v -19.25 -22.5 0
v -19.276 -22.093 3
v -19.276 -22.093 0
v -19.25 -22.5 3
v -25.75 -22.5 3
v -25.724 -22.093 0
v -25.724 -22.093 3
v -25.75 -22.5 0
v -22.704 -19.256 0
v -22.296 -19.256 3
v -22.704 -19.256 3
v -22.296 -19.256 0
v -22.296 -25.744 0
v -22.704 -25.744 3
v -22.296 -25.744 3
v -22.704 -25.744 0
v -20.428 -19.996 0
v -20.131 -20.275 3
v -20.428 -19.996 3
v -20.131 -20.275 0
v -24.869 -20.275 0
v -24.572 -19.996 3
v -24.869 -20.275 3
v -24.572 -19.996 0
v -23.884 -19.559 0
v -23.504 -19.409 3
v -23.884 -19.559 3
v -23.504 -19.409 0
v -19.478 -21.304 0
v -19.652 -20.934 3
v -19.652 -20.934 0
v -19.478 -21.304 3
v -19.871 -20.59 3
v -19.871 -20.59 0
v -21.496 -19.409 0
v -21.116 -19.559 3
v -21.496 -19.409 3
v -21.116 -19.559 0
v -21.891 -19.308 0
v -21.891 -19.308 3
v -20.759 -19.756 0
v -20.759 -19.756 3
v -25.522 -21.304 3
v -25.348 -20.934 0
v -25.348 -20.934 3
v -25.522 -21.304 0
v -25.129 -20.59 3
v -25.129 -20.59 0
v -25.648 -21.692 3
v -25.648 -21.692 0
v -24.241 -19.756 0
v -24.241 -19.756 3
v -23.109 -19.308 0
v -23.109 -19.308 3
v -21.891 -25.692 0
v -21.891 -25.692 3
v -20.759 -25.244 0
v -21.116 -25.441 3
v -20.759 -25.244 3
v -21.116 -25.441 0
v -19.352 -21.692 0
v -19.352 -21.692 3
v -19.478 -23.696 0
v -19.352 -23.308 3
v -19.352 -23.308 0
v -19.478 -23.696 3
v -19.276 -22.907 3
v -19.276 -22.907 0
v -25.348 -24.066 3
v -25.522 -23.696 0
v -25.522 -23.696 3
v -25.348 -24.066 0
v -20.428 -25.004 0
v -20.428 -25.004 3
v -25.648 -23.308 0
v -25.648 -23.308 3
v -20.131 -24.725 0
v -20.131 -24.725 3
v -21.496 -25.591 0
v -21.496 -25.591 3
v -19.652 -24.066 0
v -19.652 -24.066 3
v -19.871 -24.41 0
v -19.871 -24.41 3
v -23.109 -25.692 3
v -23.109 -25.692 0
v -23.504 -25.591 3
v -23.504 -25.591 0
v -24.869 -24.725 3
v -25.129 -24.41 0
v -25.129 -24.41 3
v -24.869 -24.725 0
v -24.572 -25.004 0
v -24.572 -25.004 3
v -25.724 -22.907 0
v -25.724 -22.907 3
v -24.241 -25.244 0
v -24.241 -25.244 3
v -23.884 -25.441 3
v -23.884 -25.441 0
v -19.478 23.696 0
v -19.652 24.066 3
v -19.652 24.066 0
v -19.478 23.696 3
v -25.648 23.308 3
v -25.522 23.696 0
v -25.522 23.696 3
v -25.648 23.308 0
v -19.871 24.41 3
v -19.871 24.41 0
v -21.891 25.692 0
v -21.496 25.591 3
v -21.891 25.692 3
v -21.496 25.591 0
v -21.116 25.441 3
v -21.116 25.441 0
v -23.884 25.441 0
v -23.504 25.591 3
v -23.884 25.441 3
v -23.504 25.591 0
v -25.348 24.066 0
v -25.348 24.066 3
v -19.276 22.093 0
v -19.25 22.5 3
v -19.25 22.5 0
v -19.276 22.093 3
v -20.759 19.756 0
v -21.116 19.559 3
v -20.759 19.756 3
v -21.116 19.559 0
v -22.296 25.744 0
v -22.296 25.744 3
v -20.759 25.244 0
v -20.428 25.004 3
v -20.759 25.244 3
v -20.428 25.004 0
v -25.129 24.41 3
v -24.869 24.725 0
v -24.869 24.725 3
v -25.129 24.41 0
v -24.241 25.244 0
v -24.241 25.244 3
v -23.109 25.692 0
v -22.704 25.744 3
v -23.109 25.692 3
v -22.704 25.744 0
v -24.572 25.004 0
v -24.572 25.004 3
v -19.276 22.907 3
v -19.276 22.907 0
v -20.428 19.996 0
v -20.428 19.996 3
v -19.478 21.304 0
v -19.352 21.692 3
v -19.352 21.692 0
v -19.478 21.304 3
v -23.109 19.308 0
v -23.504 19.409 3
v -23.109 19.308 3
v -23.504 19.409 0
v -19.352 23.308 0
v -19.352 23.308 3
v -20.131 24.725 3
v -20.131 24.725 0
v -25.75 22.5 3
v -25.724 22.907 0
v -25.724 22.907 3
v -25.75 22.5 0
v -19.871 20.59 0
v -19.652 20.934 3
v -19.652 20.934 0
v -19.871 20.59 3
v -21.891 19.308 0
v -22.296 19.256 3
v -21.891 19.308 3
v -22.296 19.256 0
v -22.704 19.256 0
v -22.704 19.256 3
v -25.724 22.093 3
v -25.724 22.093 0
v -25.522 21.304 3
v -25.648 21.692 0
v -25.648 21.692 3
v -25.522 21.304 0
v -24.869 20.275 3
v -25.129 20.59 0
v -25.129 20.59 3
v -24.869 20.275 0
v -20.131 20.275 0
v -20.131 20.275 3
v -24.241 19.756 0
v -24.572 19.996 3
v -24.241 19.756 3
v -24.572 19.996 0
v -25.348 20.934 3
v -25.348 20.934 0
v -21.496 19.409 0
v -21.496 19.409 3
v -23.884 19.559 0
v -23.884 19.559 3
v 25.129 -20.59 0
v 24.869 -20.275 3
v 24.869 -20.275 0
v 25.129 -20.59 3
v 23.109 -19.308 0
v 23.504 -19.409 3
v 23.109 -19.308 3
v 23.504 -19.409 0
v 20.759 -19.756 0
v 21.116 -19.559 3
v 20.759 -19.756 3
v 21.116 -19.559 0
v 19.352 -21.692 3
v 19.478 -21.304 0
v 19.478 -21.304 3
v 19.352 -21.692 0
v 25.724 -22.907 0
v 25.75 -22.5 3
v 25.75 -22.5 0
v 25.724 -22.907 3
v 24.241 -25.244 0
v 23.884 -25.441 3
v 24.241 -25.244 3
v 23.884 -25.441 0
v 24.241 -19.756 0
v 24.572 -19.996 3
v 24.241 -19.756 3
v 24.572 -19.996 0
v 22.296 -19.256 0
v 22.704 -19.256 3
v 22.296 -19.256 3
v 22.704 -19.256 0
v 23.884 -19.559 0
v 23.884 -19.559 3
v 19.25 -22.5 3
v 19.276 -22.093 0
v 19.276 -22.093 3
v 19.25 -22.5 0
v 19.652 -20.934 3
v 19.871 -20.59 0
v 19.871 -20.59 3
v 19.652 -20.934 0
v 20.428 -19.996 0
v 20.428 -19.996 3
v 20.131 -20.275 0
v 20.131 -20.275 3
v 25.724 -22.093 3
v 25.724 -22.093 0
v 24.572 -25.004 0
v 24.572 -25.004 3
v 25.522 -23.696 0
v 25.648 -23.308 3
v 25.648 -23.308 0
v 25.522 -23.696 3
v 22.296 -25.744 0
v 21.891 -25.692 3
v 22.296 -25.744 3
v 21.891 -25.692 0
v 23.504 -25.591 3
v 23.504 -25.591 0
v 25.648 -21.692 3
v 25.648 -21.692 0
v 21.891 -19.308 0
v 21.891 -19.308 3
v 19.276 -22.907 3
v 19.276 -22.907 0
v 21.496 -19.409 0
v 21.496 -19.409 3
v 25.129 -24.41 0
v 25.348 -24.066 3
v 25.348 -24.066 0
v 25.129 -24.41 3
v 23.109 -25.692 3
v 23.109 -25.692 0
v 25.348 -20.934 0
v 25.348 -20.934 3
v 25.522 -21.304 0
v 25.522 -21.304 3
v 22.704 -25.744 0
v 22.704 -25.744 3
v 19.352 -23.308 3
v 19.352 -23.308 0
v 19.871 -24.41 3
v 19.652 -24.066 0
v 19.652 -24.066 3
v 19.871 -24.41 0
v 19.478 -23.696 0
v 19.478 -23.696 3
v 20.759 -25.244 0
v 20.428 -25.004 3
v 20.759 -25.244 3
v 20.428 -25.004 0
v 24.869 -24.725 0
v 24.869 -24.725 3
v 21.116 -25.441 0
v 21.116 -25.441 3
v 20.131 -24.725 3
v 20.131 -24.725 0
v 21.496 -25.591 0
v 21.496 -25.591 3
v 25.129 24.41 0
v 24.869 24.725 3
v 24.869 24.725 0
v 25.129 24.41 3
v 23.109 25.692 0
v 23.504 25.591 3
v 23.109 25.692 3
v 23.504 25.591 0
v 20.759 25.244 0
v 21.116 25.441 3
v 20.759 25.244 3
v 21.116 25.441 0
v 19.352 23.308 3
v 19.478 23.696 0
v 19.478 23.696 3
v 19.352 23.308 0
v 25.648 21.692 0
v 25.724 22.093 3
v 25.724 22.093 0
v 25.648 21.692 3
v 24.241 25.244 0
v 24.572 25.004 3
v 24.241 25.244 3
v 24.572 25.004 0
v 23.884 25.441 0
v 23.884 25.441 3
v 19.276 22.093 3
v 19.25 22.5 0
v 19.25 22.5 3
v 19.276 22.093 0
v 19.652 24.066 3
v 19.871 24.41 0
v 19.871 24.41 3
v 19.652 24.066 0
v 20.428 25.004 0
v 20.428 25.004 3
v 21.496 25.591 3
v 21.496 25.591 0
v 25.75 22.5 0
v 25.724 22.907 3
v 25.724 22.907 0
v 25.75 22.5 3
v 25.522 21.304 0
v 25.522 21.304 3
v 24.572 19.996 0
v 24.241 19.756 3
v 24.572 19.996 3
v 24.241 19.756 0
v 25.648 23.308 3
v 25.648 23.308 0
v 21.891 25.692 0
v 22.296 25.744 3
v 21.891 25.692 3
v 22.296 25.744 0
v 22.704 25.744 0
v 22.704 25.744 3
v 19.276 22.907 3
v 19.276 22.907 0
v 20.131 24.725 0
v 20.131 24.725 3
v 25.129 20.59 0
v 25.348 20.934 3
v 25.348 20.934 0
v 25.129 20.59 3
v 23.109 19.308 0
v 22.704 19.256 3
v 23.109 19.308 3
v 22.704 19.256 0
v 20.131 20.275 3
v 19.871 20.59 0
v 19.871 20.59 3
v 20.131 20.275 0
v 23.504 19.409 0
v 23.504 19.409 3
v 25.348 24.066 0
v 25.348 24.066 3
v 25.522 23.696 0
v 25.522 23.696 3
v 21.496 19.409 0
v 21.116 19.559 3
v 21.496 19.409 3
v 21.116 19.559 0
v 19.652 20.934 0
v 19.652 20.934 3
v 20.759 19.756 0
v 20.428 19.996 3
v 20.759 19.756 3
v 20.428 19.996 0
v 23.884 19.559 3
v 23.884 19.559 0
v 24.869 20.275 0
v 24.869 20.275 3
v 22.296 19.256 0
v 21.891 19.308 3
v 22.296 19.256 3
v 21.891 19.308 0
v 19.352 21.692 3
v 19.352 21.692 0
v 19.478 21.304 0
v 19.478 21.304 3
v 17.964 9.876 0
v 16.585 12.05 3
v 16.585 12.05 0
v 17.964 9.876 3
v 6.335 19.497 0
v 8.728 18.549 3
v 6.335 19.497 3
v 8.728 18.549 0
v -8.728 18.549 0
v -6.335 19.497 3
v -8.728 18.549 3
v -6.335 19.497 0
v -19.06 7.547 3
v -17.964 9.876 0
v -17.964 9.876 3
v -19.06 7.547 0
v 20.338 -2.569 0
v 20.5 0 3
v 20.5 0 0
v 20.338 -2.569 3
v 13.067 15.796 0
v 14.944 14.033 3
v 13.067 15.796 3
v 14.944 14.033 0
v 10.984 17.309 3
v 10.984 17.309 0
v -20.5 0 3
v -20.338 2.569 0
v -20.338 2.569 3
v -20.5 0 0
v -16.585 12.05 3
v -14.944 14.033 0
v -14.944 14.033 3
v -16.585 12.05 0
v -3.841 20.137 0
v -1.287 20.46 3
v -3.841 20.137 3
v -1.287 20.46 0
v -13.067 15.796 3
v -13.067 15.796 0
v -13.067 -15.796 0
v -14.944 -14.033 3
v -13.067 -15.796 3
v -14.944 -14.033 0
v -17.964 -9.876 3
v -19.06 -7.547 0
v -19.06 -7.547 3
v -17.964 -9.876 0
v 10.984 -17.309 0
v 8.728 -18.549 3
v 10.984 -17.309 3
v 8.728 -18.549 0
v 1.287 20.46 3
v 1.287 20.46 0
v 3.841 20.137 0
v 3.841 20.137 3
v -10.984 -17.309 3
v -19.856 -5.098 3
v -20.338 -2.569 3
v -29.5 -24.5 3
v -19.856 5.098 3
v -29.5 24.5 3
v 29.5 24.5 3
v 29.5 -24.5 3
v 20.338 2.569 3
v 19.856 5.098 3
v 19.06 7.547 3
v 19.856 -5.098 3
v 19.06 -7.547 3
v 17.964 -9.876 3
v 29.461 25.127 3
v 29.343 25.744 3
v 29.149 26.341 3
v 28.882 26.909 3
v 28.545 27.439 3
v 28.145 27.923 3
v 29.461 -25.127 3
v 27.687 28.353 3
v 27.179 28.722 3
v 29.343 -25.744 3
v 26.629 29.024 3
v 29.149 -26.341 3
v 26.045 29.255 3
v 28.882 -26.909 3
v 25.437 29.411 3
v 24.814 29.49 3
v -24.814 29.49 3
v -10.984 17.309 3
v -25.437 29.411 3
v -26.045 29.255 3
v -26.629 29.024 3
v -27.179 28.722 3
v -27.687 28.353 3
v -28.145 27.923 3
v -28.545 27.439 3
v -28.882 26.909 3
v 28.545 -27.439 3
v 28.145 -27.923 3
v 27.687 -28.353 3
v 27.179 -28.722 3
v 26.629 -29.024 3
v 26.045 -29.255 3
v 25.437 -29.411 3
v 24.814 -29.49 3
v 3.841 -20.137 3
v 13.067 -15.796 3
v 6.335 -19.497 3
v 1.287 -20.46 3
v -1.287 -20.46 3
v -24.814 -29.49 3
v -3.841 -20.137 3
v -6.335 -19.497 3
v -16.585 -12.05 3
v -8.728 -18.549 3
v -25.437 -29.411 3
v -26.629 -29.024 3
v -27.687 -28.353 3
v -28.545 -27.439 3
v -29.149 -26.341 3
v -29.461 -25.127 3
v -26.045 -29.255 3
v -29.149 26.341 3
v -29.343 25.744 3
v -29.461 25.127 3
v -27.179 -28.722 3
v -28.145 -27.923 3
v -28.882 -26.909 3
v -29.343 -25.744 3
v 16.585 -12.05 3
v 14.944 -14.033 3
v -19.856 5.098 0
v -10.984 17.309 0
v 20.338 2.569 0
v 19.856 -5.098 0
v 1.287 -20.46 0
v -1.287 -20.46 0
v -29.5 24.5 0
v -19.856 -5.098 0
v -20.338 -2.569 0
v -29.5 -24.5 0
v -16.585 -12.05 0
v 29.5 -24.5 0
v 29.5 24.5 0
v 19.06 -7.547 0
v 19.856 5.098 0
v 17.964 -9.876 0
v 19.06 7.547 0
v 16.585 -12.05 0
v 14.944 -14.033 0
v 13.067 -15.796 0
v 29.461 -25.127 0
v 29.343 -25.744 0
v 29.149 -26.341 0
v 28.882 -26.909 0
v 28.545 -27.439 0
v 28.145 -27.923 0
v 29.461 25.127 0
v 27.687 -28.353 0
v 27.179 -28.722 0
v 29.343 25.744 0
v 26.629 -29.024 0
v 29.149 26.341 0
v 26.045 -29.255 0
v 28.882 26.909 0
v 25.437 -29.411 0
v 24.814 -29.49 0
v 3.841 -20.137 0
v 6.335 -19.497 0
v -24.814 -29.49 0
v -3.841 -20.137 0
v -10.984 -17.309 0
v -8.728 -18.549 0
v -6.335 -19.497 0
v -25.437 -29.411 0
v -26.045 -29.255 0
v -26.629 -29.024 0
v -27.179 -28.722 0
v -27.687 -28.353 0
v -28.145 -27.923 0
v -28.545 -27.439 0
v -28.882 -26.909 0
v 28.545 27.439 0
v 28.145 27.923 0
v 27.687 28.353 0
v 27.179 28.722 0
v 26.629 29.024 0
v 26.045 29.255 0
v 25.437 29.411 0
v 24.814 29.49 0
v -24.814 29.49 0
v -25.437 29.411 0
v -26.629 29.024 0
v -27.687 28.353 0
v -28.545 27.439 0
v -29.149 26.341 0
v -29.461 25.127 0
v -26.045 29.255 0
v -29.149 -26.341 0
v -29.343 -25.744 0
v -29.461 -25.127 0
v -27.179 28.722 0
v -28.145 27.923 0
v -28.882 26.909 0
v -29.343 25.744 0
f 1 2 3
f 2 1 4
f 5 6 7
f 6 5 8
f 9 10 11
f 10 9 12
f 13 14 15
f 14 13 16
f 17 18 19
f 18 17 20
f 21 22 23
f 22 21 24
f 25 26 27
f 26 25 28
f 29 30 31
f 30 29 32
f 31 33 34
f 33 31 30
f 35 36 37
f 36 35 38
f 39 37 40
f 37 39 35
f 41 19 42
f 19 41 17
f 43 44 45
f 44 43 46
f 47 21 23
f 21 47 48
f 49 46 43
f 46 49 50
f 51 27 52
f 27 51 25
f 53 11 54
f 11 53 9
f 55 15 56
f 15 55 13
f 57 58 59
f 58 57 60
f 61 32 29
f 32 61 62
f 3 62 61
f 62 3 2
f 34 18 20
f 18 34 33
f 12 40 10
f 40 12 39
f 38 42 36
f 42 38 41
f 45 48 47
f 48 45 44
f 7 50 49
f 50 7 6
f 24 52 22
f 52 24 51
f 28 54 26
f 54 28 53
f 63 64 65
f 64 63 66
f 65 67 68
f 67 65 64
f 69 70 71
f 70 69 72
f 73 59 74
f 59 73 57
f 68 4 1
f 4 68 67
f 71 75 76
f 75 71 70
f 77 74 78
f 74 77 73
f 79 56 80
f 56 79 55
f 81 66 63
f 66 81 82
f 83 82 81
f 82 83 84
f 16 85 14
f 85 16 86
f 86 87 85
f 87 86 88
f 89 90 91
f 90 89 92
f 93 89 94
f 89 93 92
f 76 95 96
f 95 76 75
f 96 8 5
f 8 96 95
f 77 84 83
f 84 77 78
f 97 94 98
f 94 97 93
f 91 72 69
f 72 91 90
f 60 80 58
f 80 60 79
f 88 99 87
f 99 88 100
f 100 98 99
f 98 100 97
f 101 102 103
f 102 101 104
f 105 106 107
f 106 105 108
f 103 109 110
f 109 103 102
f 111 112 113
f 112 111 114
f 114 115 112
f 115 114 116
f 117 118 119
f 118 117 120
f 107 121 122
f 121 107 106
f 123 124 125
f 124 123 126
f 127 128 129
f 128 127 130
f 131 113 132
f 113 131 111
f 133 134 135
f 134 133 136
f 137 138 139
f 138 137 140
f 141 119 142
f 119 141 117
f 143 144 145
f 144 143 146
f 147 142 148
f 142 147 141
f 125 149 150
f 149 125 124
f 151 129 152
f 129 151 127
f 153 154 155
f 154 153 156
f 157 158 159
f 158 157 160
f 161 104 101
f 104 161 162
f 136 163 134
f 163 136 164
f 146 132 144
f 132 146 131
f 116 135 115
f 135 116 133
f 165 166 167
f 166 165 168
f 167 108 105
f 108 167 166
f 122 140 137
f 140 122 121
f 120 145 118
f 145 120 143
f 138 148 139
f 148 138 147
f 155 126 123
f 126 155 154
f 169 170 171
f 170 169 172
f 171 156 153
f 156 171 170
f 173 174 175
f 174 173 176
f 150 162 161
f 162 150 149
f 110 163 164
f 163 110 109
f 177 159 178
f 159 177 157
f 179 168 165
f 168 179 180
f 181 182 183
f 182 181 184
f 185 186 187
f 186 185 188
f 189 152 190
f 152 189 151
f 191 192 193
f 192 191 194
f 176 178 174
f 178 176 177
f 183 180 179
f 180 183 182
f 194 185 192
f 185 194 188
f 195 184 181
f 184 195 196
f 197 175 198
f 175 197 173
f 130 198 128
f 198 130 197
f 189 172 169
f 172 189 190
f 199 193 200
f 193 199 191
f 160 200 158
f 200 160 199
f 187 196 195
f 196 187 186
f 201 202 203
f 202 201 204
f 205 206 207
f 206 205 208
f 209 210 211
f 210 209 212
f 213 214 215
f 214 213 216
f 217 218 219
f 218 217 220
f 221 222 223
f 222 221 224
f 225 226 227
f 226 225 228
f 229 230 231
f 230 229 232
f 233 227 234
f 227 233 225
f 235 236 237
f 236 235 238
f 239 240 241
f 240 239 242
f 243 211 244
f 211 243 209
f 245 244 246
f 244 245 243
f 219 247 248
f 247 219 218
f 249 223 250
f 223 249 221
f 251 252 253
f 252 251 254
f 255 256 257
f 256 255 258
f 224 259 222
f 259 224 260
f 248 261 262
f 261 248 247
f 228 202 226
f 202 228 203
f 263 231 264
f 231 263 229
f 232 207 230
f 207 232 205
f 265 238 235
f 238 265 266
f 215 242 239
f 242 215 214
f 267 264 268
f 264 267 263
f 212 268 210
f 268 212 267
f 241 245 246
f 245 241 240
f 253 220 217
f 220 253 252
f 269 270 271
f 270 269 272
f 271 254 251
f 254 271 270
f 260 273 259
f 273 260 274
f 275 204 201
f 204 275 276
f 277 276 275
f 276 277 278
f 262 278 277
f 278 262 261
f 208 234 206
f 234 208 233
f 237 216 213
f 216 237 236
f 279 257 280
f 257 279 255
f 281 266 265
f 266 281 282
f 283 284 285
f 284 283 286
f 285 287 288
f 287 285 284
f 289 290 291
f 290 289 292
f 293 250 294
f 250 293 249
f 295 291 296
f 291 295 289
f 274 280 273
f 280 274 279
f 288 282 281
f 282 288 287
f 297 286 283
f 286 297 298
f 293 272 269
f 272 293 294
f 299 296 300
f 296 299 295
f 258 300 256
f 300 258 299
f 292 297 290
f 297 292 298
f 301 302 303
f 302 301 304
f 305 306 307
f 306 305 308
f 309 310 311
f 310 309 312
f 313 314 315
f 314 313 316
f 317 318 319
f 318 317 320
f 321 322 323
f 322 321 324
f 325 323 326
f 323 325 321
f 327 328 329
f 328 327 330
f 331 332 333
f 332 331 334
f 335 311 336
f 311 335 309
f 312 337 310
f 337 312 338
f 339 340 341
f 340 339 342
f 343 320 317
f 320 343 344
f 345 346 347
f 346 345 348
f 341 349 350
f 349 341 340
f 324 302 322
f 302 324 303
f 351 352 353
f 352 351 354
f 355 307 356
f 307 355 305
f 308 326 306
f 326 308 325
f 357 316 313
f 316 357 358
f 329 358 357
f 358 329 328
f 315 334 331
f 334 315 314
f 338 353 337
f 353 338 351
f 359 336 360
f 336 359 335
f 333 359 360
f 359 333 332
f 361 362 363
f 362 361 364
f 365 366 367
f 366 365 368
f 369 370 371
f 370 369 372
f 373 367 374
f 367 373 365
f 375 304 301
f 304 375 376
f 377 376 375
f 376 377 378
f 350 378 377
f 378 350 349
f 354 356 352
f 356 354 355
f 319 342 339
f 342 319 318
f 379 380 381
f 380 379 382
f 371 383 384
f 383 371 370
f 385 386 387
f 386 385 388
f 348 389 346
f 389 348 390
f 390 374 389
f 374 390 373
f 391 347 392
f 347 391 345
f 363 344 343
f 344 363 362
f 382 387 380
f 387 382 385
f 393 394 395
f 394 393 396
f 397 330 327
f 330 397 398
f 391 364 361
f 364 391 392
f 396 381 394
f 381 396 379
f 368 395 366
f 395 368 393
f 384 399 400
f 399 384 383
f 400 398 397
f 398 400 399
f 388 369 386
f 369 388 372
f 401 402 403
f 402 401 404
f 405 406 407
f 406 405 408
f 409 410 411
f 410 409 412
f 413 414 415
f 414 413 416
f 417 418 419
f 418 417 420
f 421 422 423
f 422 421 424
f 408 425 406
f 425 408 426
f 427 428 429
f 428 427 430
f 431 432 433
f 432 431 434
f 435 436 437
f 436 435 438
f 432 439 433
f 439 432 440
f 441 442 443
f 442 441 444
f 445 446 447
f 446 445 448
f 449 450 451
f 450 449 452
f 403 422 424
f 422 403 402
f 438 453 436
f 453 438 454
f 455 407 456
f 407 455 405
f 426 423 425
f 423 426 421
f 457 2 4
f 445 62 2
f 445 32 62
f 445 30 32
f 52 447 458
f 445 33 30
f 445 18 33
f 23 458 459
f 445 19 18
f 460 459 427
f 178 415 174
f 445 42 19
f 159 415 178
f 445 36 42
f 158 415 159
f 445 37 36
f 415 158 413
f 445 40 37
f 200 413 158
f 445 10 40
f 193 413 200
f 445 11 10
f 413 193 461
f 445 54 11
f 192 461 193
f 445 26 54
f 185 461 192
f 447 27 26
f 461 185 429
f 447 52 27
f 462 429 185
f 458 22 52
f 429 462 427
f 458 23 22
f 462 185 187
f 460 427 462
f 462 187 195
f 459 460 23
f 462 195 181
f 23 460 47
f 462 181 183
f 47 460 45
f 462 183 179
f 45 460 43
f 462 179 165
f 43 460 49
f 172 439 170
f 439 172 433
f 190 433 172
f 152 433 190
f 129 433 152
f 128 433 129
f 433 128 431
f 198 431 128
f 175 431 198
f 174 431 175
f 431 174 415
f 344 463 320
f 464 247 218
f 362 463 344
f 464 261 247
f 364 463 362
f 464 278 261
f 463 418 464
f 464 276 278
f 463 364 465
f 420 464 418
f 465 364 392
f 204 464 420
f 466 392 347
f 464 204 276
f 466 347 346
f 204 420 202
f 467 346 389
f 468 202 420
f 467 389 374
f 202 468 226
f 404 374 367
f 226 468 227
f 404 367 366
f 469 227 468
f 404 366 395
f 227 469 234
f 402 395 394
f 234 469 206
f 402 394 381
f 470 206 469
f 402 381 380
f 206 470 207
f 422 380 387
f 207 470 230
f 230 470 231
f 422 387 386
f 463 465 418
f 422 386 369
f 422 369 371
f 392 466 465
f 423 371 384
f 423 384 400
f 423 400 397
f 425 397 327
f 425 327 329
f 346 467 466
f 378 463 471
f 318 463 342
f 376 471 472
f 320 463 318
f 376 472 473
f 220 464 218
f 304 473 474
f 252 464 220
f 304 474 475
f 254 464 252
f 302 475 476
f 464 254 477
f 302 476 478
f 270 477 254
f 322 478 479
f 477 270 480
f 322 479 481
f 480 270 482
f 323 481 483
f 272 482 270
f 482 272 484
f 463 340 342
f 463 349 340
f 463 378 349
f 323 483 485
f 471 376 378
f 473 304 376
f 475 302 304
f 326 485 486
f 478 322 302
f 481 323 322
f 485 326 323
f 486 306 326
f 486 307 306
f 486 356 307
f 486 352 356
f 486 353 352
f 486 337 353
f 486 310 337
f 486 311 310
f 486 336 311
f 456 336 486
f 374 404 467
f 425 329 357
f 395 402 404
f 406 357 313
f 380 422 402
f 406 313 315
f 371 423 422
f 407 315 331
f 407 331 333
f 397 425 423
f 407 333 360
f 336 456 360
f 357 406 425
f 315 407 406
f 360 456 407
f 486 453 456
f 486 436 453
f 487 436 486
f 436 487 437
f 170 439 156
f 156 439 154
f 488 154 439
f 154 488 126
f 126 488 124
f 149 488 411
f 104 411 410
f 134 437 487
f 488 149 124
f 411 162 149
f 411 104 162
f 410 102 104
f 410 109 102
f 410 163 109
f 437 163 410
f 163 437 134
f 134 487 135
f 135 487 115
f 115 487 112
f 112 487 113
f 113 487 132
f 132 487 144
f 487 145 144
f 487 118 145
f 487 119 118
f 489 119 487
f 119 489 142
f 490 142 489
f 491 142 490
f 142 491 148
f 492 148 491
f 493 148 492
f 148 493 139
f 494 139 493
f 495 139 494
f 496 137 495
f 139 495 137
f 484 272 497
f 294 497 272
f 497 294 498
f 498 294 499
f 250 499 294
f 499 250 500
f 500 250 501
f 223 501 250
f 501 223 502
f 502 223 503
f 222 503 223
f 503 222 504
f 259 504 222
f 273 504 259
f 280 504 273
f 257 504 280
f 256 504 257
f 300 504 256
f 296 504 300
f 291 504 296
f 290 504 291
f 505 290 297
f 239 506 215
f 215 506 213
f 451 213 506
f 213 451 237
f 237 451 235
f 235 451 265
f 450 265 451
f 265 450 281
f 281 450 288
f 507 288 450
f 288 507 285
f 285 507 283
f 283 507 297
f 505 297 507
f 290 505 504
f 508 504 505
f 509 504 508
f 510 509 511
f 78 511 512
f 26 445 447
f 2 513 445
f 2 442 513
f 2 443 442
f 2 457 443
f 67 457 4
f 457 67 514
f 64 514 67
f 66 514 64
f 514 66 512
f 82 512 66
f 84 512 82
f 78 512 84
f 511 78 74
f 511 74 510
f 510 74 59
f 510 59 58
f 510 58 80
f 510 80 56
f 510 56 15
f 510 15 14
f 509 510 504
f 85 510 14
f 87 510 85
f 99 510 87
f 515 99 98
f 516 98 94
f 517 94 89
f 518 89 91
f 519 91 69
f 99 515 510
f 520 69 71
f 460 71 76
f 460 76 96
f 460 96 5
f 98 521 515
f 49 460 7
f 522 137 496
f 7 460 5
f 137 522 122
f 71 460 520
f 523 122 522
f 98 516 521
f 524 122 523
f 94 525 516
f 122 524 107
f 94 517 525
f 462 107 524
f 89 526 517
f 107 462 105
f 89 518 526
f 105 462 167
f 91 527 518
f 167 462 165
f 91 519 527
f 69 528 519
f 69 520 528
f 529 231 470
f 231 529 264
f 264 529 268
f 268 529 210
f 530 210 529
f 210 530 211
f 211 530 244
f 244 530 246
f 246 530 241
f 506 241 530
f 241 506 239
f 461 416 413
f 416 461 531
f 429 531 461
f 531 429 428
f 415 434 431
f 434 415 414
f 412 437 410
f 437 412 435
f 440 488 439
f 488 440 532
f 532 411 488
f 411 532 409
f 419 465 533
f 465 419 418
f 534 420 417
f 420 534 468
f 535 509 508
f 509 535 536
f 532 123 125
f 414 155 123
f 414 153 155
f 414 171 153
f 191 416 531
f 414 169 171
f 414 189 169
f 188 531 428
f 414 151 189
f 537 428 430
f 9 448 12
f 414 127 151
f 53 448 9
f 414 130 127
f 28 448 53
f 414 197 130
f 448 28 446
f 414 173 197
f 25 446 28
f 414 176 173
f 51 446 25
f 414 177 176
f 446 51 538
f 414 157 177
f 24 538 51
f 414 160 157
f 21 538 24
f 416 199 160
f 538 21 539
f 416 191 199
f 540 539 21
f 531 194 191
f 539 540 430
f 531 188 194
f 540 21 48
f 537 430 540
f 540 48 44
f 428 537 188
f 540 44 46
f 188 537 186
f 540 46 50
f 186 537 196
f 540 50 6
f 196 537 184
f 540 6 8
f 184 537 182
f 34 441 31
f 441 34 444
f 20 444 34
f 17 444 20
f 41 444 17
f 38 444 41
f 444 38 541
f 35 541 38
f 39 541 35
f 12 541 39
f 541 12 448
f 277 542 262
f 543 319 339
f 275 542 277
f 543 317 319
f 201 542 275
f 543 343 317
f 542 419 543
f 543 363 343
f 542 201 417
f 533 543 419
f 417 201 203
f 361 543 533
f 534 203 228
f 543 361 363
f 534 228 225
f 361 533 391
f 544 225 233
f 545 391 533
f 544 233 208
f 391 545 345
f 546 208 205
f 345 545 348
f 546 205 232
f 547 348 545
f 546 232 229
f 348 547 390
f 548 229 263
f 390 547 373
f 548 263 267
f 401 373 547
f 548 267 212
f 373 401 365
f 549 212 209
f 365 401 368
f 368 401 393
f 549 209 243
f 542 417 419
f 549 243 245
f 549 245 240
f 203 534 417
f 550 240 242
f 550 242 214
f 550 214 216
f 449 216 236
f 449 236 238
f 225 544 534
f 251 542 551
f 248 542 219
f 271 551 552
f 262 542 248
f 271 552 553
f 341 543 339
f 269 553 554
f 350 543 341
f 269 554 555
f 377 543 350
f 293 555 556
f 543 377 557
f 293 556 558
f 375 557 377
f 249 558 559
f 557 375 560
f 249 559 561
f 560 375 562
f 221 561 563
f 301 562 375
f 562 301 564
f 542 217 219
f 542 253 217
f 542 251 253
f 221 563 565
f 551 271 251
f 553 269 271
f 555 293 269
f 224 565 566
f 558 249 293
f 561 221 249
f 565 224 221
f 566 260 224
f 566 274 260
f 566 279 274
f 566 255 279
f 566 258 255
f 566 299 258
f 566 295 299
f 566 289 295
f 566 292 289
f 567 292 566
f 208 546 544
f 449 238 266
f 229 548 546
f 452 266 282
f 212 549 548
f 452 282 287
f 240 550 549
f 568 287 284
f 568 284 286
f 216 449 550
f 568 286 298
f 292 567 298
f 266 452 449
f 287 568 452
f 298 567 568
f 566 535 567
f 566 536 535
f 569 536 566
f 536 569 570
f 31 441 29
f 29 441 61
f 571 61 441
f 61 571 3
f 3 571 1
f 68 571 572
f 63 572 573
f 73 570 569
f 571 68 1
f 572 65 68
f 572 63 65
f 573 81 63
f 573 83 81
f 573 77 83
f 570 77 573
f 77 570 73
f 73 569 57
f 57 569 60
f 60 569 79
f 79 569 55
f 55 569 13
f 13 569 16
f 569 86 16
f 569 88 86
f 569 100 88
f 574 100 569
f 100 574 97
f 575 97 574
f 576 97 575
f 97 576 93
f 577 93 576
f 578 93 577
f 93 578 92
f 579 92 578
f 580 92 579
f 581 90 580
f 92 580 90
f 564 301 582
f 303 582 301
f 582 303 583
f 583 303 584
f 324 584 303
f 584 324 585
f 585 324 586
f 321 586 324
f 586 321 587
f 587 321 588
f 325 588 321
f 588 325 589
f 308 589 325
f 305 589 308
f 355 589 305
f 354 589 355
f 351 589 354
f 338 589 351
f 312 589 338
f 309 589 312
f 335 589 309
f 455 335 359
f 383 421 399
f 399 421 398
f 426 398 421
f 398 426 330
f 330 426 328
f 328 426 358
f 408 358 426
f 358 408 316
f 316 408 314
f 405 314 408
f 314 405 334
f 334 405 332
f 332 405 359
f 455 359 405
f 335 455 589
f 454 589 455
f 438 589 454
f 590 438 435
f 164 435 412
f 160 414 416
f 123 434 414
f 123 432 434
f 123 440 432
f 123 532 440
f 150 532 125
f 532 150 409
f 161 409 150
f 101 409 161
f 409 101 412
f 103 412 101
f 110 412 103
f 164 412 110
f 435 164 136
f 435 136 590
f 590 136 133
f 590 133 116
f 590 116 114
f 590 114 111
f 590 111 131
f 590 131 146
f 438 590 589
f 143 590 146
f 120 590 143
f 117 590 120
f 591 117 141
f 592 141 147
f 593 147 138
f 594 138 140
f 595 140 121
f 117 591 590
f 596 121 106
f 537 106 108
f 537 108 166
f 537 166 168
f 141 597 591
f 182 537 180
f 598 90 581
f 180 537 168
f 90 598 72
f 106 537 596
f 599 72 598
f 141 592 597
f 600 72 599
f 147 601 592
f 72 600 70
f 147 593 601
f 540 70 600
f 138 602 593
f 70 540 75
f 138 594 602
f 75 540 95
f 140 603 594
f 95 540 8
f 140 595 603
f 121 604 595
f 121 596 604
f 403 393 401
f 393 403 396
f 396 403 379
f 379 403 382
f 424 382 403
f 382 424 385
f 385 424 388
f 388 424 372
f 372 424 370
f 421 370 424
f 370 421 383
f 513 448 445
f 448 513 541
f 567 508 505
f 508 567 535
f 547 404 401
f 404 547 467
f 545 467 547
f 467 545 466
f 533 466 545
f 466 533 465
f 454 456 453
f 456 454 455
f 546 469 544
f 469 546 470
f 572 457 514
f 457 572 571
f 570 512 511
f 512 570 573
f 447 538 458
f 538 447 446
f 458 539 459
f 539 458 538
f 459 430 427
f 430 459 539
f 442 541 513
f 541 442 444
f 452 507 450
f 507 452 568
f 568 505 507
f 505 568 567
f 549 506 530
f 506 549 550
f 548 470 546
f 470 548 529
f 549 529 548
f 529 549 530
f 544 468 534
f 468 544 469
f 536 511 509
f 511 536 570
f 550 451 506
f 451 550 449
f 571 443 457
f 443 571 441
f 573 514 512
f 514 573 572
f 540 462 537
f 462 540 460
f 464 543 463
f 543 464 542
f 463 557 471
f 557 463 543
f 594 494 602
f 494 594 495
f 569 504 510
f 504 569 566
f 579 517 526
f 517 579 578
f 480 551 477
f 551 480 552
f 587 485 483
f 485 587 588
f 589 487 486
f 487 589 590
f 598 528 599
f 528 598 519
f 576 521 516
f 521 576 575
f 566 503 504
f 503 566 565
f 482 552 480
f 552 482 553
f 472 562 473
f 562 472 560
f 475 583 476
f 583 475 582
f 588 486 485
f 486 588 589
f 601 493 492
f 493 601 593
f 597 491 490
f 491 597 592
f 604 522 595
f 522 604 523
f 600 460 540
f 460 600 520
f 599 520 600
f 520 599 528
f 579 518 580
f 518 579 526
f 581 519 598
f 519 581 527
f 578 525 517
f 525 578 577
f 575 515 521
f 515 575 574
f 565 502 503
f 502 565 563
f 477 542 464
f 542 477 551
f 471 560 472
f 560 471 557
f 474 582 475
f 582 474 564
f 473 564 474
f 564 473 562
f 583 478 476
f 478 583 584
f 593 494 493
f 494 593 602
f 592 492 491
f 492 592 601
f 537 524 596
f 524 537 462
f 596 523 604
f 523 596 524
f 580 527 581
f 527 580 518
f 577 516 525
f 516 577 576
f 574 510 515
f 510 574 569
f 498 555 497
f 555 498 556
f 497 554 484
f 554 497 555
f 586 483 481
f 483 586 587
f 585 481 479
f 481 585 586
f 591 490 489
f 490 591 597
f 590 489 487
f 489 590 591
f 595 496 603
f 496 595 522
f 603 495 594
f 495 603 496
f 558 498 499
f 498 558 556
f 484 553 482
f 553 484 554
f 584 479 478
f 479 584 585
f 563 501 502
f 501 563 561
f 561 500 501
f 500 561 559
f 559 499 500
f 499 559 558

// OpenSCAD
$fn = 50;


difference() {
	union() {
		hull() {
			translate(v = [-24.5000000000, 24.5000000000, 0]) {
				cylinder(h = 3, r = 5);
			}
			translate(v = [24.5000000000, 24.5000000000, 0]) {
				cylinder(h = 3, r = 5);
			}
			translate(v = [-24.5000000000, -24.5000000000, 0]) {
				cylinder(h = 3, r = 5);
			}
			translate(v = [24.5000000000, -24.5000000000, 0]) {
				cylinder(h = 3, r = 5);
			}
		}
	}
	union() {
		#translate(v = [-22.5000000000, -22.5000000000, -100.0000000000]) {
			cylinder(h = 200, r = 3.2500000000);
		}
		#translate(v = [-22.5000000000, 22.5000000000, -100.0000000000]) {
			cylinder(h = 200, r = 3.2500000000);
		}
		#translate(v = [22.5000000000, -22.5000000000, -100.0000000000]) {
			cylinder(h = 200, r = 3.2500000000);
		}
		#translate(v = [22.5000000000, 22.5000000000, -100.0000000000]) {
			cylinder(h = 200, r = 3.2500000000);
		}
		#cylinder(h = 3, r = 20.5000000000);
	}
}
